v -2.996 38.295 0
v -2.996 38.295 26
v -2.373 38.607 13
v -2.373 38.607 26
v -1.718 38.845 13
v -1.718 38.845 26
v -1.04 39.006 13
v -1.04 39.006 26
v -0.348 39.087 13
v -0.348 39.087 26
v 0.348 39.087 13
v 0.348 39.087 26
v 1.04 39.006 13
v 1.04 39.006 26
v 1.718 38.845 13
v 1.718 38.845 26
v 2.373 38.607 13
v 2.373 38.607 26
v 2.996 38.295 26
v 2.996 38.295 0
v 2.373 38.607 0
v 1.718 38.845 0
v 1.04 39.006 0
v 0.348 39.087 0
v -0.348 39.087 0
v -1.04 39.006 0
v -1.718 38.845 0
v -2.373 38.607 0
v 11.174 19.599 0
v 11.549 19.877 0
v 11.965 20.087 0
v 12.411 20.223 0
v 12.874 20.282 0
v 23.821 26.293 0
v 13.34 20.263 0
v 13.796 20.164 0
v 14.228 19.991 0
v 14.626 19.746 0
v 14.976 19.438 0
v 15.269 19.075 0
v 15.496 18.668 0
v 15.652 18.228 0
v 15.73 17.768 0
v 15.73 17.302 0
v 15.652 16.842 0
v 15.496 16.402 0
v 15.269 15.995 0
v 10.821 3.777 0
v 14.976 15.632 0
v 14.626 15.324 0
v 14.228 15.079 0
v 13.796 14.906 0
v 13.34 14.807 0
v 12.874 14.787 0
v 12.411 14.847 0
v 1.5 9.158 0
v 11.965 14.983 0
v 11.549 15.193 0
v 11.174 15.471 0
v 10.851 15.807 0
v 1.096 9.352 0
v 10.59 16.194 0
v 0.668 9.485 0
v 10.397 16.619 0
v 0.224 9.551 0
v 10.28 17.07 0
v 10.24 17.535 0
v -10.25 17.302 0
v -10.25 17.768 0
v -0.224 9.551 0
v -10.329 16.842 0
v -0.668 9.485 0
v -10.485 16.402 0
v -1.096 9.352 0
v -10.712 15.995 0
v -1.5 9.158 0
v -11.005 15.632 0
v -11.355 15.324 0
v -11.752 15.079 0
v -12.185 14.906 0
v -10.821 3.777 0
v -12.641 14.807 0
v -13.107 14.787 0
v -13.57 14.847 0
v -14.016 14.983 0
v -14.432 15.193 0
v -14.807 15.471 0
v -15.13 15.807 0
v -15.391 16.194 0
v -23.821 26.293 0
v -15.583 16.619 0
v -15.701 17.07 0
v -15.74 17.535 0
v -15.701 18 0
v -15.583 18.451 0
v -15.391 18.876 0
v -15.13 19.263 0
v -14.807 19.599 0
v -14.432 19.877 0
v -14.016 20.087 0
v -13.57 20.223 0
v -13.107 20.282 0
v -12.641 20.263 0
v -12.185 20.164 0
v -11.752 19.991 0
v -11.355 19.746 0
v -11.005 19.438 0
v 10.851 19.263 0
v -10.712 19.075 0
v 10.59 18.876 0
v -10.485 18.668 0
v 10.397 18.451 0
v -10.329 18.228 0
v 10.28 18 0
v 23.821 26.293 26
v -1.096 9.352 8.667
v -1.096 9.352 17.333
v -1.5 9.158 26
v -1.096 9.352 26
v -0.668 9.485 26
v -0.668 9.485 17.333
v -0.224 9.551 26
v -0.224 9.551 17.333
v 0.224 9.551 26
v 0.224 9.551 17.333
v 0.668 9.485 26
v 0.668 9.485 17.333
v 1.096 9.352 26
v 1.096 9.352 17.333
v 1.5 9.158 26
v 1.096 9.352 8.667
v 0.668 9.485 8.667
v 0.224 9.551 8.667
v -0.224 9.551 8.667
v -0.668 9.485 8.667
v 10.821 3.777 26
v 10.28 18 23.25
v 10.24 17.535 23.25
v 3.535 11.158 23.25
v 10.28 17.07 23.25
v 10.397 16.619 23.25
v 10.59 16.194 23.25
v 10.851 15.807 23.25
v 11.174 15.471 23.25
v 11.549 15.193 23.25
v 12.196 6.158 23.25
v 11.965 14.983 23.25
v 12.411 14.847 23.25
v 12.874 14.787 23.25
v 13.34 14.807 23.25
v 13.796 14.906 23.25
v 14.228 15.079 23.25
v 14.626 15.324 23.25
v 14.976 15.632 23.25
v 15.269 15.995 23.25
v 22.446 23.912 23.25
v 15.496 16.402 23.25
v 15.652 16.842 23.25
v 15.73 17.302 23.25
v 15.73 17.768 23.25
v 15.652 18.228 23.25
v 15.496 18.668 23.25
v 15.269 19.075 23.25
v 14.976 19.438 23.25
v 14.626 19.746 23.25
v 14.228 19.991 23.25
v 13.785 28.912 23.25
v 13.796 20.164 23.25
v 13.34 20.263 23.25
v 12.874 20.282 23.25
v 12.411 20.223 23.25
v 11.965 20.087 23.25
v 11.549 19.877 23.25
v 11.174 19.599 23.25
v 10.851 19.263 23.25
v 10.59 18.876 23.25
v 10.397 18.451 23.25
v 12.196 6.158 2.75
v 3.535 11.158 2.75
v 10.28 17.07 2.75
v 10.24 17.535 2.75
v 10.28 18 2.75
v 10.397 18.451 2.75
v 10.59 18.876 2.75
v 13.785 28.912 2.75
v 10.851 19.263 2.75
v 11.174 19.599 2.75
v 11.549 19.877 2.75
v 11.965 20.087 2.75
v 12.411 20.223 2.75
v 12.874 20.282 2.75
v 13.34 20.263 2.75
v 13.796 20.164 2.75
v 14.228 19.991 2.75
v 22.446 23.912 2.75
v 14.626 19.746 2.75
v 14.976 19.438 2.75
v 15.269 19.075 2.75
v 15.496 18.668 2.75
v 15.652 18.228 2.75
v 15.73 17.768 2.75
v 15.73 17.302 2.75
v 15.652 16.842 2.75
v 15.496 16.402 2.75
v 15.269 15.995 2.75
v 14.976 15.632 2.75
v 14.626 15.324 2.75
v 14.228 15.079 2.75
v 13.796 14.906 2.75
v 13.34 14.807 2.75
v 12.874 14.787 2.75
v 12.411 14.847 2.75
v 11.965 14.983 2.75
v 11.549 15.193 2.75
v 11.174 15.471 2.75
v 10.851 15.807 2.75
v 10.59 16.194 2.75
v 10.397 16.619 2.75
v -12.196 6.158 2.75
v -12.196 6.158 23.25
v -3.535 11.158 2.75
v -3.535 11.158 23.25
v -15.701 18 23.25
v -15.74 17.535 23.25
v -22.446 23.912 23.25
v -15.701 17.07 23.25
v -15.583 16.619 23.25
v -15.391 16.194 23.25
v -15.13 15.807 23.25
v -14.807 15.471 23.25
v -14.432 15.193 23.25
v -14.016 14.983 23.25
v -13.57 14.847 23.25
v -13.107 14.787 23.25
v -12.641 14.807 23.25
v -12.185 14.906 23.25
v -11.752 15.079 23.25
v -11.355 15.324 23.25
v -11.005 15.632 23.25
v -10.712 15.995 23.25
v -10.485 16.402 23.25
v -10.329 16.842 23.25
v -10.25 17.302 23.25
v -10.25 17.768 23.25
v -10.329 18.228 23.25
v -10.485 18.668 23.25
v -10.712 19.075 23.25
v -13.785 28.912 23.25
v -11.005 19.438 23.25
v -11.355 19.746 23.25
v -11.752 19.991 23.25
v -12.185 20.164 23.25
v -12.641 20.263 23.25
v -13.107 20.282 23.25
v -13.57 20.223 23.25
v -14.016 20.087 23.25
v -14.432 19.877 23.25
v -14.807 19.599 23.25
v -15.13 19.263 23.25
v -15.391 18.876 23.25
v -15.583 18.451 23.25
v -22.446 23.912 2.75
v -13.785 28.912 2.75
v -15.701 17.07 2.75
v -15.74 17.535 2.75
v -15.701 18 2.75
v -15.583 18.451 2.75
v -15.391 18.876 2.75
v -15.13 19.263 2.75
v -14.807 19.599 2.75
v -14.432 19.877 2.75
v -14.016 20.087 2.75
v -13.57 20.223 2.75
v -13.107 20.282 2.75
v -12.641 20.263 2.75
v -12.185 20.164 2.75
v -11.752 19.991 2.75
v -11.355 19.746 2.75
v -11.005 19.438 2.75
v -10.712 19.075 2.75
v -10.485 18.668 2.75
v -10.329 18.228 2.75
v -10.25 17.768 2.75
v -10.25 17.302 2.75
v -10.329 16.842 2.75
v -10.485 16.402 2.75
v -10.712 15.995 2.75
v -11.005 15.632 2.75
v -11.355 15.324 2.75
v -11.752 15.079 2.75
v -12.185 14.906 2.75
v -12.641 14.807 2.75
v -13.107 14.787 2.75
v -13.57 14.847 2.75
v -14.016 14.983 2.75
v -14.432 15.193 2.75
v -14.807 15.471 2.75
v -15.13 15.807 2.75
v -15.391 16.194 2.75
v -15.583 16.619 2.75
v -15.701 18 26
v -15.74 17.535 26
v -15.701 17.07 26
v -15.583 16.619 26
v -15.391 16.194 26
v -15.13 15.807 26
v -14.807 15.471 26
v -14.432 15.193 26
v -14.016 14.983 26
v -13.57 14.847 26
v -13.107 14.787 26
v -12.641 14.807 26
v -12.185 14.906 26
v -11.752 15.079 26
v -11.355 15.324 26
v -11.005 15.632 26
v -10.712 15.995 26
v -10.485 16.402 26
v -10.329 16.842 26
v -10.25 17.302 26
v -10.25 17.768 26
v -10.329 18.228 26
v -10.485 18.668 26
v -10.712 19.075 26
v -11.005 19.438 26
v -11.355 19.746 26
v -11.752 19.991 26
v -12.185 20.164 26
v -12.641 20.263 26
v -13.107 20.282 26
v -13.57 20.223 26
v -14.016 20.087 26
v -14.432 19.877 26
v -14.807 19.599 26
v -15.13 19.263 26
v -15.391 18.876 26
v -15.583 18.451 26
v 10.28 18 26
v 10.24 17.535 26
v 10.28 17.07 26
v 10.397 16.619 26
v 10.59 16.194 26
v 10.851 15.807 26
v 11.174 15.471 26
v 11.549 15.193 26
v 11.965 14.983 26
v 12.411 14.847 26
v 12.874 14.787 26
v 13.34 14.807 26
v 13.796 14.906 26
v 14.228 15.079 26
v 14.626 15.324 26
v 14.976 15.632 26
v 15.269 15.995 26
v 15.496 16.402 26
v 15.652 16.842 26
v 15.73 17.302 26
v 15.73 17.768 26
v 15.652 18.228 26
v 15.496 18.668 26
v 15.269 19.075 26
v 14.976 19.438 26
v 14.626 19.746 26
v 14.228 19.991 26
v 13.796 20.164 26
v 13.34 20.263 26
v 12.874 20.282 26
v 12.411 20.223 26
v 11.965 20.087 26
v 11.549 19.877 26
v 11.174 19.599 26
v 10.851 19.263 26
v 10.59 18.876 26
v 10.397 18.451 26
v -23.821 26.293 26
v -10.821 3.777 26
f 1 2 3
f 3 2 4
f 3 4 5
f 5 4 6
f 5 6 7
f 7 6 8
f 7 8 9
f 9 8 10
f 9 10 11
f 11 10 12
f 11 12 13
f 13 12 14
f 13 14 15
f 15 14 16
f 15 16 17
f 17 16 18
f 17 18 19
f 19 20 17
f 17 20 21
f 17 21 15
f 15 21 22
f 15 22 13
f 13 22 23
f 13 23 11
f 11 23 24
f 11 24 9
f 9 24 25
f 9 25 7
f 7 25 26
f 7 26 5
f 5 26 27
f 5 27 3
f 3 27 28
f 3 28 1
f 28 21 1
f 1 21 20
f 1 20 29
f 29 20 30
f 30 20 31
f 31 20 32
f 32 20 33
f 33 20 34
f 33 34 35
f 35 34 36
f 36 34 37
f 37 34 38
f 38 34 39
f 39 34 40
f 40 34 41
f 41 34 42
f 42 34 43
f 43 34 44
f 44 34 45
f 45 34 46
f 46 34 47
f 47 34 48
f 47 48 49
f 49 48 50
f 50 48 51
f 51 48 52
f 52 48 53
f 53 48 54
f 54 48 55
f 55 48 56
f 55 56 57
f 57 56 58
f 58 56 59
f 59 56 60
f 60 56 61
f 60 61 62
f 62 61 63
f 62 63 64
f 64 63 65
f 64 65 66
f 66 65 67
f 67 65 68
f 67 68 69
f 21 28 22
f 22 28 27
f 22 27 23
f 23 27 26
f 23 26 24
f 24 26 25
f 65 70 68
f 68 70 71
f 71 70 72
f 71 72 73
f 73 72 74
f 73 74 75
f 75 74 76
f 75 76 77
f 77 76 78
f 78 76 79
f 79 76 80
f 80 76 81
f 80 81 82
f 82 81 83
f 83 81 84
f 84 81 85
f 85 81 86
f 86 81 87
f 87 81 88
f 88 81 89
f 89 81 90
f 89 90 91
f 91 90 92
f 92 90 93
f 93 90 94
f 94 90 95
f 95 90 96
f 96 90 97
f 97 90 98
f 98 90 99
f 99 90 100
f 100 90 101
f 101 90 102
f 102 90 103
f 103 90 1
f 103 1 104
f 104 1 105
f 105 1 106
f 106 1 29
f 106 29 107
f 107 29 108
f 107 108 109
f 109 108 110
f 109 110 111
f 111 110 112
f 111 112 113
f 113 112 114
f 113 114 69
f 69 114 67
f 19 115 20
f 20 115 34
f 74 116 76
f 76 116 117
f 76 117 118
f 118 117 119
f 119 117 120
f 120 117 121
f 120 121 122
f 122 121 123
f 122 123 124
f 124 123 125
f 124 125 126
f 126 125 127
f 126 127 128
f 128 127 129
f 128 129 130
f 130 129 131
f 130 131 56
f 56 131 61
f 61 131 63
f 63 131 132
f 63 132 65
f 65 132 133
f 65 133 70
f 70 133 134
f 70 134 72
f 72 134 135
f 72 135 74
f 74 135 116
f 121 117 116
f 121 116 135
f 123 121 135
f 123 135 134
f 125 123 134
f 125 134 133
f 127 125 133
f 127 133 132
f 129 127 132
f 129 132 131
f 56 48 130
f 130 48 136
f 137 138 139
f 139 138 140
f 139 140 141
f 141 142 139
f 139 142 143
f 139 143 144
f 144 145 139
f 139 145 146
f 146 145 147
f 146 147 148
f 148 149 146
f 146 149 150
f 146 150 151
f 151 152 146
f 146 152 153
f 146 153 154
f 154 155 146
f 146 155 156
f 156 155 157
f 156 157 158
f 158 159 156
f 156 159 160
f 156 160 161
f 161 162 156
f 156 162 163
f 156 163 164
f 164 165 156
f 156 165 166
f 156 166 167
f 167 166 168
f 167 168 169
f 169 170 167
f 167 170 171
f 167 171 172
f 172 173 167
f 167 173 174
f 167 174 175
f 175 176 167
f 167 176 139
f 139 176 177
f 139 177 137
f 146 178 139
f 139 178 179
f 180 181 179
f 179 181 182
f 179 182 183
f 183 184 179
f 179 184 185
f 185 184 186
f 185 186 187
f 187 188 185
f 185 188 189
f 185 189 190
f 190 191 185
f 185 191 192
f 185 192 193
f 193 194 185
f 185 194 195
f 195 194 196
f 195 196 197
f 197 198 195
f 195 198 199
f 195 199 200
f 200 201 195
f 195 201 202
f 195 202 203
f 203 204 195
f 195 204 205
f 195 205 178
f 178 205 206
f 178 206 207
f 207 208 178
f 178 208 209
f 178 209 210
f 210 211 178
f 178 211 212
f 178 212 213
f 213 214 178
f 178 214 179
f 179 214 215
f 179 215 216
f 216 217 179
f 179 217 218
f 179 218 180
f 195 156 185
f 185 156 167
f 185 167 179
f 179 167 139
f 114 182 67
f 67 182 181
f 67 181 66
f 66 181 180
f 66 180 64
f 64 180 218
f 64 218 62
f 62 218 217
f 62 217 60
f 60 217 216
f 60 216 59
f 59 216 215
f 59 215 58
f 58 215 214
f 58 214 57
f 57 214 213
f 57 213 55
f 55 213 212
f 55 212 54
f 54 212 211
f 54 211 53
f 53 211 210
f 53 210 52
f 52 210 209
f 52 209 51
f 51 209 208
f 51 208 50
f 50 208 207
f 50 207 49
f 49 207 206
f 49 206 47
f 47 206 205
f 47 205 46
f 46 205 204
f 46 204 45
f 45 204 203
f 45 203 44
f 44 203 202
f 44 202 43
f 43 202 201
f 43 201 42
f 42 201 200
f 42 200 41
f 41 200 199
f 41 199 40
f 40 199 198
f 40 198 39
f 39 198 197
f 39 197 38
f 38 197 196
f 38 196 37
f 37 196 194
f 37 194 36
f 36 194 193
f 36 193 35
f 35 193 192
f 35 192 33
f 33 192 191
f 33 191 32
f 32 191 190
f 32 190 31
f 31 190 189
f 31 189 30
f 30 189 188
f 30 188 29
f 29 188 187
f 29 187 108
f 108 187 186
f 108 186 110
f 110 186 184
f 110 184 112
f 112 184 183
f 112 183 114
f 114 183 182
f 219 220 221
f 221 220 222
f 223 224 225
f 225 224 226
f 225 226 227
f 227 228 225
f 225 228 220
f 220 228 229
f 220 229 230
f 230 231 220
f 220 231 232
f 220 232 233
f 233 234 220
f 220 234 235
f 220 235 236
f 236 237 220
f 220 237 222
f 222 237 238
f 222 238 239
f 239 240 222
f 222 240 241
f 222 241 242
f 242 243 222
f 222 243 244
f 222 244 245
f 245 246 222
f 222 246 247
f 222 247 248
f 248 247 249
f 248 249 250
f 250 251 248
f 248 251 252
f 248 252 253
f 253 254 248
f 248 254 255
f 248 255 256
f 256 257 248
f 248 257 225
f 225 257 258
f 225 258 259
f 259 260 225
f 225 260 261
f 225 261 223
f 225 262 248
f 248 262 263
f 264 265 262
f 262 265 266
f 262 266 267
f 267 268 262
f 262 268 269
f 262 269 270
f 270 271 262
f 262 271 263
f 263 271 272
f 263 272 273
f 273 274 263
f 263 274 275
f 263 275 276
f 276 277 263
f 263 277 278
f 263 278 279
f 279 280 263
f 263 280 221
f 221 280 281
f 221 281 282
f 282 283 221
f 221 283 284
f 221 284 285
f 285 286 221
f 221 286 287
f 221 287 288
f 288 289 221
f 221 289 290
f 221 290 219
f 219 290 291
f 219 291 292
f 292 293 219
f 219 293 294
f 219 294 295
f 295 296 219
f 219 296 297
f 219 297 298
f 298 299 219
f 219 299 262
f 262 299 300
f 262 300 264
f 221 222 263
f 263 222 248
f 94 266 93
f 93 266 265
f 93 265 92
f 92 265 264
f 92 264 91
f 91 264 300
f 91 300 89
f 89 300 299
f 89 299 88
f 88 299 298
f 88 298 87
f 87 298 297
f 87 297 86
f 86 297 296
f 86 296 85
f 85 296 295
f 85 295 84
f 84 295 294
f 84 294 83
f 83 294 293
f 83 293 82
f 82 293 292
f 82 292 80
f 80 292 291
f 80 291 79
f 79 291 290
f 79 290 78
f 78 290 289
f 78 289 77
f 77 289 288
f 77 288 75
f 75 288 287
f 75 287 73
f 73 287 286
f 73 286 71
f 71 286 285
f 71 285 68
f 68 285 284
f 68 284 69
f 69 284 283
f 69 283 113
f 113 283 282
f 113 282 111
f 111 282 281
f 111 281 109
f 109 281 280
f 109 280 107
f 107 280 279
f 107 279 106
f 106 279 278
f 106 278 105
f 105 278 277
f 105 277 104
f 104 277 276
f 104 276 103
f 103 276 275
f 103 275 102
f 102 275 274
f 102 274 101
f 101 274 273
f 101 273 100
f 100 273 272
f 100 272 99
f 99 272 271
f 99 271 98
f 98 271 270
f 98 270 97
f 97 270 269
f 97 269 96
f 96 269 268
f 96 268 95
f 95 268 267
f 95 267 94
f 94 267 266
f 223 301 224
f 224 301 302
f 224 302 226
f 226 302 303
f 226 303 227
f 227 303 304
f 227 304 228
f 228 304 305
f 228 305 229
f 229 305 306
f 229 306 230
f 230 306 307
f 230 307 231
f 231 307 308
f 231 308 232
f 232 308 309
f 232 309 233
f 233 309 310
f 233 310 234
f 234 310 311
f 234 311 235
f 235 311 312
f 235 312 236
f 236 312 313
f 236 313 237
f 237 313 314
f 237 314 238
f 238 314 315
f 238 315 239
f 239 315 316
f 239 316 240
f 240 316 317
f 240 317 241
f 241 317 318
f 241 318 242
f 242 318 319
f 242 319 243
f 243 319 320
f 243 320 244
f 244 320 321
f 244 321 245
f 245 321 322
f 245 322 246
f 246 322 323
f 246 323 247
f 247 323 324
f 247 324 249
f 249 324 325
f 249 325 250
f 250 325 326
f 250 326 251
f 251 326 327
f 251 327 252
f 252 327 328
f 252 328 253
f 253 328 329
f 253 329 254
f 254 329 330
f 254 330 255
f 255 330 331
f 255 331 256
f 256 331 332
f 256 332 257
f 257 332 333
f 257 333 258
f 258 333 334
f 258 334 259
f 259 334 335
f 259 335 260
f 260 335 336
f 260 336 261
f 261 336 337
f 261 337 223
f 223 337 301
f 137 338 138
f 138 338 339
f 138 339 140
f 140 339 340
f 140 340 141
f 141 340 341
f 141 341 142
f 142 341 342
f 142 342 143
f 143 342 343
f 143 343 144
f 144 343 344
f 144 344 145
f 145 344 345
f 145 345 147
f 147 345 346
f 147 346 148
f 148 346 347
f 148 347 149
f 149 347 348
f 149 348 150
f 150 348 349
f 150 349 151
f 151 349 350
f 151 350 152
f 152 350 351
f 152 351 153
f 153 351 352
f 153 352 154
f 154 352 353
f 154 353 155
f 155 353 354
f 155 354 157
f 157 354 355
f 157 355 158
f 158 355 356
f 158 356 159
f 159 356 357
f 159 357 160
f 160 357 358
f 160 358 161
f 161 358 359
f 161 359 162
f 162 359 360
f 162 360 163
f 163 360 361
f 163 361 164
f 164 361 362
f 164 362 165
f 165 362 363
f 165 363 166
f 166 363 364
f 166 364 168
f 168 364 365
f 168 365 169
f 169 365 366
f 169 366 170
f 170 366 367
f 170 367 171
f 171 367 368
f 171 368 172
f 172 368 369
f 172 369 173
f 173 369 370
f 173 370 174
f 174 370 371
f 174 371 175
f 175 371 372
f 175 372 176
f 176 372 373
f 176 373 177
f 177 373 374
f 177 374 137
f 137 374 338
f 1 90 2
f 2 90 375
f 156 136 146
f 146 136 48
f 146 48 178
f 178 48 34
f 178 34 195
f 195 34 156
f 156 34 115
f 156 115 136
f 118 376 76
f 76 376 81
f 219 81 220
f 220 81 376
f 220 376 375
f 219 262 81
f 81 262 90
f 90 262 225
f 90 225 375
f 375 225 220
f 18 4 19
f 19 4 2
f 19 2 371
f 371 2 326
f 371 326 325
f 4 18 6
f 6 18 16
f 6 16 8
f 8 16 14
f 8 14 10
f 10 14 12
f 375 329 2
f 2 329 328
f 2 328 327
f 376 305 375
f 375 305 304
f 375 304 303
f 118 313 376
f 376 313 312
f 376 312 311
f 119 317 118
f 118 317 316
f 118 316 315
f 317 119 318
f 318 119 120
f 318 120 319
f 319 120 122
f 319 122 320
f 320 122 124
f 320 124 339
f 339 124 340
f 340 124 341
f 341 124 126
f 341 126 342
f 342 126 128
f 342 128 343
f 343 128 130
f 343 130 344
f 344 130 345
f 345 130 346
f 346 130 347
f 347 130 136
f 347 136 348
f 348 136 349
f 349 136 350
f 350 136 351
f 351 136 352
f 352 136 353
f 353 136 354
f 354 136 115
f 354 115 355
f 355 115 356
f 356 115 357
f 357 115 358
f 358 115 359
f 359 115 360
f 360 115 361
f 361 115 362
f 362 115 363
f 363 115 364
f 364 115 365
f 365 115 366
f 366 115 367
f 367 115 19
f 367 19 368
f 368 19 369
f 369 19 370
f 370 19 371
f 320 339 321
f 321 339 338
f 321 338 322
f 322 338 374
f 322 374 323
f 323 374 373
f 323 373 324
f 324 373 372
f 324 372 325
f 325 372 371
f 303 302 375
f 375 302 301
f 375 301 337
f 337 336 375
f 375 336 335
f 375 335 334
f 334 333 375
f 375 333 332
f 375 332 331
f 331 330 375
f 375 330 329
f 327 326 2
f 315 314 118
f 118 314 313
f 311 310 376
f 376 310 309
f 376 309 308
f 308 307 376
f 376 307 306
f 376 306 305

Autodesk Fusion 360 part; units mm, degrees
sketch "Sketch1" plane through (0, 0, 0) normal (0, 0, 1) x (1, 0, 0)
  line L0 (0, 0) -> (0, 25.035) construction
  line L1 (0, 25.035) -> (12.9904, 17.535) construction
  circle A0 centre (12.9904, 17.535) radius 2.75
  line L2 (12.9904, 17.535) -> (17.0367, 24.5434) construction
  line L3 (8.6603, 20.035) -> (13.6603, 28.6952)
  line L4 (13.6603, 28.6952) -> (17.9904, 26.1952)
  line L5 (12.9904, 17.535) -> (15.372, 16.16) construction
  line L6 (17.3205, 15.035) -> (22.3205, 23.6952)
  line L7 (22.3205, 23.6952) -> (17.9904, 26.1952)
  line L8 (8.6603, 20.035) -> (3.6603, 11.3747)
  line L9 (3.6603, 11.3747) -> (7.9904, 8.8747)
  line L10 (17.3205, 15.035) -> (12.3205, 6.3747)
  line L11 (12.3205, 6.3747) -> (7.9904, 8.8747)
  line L12 (12.3205, 6.3747) -> (10.8205, 3.7766)
  line L13 (10.8205, 3.7766) -> (0, 10.0239)
  line L14 (0, 25.035) -> (0, 55.0088) construction
  line L15 (22.3205, 23.6952) -> (23.8205, 26.2933)
  line L16 (23.8205, 26.2933) -> (0, 40.0219)
  line L17 (-23.8205, 26.2933) -> (0, 40.0219)
  line L18 (-22.3205, 23.6952) -> (-23.8205, 26.2933)
  line L19 (-22.3205, 23.6952) -> (-17.9904, 26.1952)
  line L20 (-13.6603, 28.6952) -> (-17.9904, 26.1952)
  line L21 (-8.6603, 20.035) -> (-13.6603, 28.6952)
  line L22 (-8.6603, 20.035) -> (-3.6603, 11.3747)
  line L23 (-3.6603, 11.3747) -> (-7.9904, 8.8747)
  line L24 (-12.3205, 6.3747) -> (-7.9904, 8.8747)
  line L25 (-17.3205, 15.035) -> (-12.3205, 6.3747)
  line L26 (-17.3205, 15.035) -> (-22.3205, 23.6952)
  circle A1 centre (-12.9904, 17.535) radius 2.75
  line L27 (-12.3205, 6.3747) -> (-10.8205, 3.7766)
  line L28 (-10.8205, 3.7766) -> (0, 10.0239)
  dimension "d1" = 60
  dimension "d2" = 5.5
  dimension "d3" = 5
  dimension "d4" = 10
  dimension "d5" = 15
  dimension "d7" = 3
  dimension "d8" = 3
extrude "Extrude1" add sketch "Sketch1" along normal blind 26
sketch "Sketch2" plane through (-6.48, -3.7413, 0) normal (-0.866, -0.5, 0) x (0.5, -0.866, 0)
  line L0 (-34.6809, 0) -> (-8.6809, 0)
  line L1 (-8.6809, 0) -> (-8.6809, 26)
  line L2 (-8.6809, 26) -> (-34.6809, 26)
  line L3 (-34.6809, 26) -> (-34.6809, 0)
  line L4 (-34.6809, 26) -> (-8.6809, 0) construction
  line L5 (-31.9309, 23.25) -> (-11.4309, 23.25)
  line L6 (-11.4309, 23.25) -> (-11.4309, 2.75)
  line L7 (-11.4309, 2.75) -> (-31.9309, 2.75)
  line L8 (-31.9309, 2.75) -> (-31.9309, 23.25)
  line L9 (-31.9309, 23.25) -> (-11.4309, 2.75) construction
  line L10 (-11.4309, 23.25) -> (-31.9309, 2.75) construction
  point P0 (-21.6809, 13)
  dimension "d11" = 20.5
  dimension "d12" = 20.5
sketch "Sketch3" plane through (6.48, -3.7413, 0) normal (0.866, -0.5, 0) x (0.5, 0.866, 0)
  line L0 (8.6809, 0) -> (34.6809, 0)
  line L1 (34.6809, 0) -> (34.6809, 26)
  line L2 (34.6809, 26) -> (8.6809, 26)
  line L3 (8.6809, 26) -> (8.6809, 0)
  line L4 (8.6809, 26) -> (34.6809, 0) construction
  line L5 (31.9309, 23.25) -> (11.4309, 23.25)
  line L6 (11.4309, 23.25) -> (11.4309, 2.75)
  line L7 (11.4309, 2.75) -> (31.9309, 2.75)
  line L8 (31.9309, 2.75) -> (31.9309, 23.25)
  line L9 (31.9309, 23.25) -> (11.4309, 2.75) construction
  line L10 (11.4309, 23.25) -> (31.9309, 2.75) construction
  point P0 (21.6809, 13)
  dimension "d13" = 20.5
  dimension "d14" = 20.5
extrude "Extrude2" cut sketch "Sketch2" against normal blind 10 contours L5 L6 L7 L8
extrude "Extrude3" cut sketch "Sketch3" against normal blind 10 contours L5 L6 L7 L8
fillet "Fillet1" radius 3 1 edges at (0, 10.0239, 13)
fillet "Fillet2" radius 6 1 edges at (0, 40.0219, 13)
equation "d2 = screw"
equation "d5 = dist"
equation "d11 = slot"
equation "d12 = slot"
equation "d13 = slot"
equation "d14 = slot"
equation "dist = 15 mm"
equation "slot = 20.5 mm"
equation "screw = 5.5 mm"
